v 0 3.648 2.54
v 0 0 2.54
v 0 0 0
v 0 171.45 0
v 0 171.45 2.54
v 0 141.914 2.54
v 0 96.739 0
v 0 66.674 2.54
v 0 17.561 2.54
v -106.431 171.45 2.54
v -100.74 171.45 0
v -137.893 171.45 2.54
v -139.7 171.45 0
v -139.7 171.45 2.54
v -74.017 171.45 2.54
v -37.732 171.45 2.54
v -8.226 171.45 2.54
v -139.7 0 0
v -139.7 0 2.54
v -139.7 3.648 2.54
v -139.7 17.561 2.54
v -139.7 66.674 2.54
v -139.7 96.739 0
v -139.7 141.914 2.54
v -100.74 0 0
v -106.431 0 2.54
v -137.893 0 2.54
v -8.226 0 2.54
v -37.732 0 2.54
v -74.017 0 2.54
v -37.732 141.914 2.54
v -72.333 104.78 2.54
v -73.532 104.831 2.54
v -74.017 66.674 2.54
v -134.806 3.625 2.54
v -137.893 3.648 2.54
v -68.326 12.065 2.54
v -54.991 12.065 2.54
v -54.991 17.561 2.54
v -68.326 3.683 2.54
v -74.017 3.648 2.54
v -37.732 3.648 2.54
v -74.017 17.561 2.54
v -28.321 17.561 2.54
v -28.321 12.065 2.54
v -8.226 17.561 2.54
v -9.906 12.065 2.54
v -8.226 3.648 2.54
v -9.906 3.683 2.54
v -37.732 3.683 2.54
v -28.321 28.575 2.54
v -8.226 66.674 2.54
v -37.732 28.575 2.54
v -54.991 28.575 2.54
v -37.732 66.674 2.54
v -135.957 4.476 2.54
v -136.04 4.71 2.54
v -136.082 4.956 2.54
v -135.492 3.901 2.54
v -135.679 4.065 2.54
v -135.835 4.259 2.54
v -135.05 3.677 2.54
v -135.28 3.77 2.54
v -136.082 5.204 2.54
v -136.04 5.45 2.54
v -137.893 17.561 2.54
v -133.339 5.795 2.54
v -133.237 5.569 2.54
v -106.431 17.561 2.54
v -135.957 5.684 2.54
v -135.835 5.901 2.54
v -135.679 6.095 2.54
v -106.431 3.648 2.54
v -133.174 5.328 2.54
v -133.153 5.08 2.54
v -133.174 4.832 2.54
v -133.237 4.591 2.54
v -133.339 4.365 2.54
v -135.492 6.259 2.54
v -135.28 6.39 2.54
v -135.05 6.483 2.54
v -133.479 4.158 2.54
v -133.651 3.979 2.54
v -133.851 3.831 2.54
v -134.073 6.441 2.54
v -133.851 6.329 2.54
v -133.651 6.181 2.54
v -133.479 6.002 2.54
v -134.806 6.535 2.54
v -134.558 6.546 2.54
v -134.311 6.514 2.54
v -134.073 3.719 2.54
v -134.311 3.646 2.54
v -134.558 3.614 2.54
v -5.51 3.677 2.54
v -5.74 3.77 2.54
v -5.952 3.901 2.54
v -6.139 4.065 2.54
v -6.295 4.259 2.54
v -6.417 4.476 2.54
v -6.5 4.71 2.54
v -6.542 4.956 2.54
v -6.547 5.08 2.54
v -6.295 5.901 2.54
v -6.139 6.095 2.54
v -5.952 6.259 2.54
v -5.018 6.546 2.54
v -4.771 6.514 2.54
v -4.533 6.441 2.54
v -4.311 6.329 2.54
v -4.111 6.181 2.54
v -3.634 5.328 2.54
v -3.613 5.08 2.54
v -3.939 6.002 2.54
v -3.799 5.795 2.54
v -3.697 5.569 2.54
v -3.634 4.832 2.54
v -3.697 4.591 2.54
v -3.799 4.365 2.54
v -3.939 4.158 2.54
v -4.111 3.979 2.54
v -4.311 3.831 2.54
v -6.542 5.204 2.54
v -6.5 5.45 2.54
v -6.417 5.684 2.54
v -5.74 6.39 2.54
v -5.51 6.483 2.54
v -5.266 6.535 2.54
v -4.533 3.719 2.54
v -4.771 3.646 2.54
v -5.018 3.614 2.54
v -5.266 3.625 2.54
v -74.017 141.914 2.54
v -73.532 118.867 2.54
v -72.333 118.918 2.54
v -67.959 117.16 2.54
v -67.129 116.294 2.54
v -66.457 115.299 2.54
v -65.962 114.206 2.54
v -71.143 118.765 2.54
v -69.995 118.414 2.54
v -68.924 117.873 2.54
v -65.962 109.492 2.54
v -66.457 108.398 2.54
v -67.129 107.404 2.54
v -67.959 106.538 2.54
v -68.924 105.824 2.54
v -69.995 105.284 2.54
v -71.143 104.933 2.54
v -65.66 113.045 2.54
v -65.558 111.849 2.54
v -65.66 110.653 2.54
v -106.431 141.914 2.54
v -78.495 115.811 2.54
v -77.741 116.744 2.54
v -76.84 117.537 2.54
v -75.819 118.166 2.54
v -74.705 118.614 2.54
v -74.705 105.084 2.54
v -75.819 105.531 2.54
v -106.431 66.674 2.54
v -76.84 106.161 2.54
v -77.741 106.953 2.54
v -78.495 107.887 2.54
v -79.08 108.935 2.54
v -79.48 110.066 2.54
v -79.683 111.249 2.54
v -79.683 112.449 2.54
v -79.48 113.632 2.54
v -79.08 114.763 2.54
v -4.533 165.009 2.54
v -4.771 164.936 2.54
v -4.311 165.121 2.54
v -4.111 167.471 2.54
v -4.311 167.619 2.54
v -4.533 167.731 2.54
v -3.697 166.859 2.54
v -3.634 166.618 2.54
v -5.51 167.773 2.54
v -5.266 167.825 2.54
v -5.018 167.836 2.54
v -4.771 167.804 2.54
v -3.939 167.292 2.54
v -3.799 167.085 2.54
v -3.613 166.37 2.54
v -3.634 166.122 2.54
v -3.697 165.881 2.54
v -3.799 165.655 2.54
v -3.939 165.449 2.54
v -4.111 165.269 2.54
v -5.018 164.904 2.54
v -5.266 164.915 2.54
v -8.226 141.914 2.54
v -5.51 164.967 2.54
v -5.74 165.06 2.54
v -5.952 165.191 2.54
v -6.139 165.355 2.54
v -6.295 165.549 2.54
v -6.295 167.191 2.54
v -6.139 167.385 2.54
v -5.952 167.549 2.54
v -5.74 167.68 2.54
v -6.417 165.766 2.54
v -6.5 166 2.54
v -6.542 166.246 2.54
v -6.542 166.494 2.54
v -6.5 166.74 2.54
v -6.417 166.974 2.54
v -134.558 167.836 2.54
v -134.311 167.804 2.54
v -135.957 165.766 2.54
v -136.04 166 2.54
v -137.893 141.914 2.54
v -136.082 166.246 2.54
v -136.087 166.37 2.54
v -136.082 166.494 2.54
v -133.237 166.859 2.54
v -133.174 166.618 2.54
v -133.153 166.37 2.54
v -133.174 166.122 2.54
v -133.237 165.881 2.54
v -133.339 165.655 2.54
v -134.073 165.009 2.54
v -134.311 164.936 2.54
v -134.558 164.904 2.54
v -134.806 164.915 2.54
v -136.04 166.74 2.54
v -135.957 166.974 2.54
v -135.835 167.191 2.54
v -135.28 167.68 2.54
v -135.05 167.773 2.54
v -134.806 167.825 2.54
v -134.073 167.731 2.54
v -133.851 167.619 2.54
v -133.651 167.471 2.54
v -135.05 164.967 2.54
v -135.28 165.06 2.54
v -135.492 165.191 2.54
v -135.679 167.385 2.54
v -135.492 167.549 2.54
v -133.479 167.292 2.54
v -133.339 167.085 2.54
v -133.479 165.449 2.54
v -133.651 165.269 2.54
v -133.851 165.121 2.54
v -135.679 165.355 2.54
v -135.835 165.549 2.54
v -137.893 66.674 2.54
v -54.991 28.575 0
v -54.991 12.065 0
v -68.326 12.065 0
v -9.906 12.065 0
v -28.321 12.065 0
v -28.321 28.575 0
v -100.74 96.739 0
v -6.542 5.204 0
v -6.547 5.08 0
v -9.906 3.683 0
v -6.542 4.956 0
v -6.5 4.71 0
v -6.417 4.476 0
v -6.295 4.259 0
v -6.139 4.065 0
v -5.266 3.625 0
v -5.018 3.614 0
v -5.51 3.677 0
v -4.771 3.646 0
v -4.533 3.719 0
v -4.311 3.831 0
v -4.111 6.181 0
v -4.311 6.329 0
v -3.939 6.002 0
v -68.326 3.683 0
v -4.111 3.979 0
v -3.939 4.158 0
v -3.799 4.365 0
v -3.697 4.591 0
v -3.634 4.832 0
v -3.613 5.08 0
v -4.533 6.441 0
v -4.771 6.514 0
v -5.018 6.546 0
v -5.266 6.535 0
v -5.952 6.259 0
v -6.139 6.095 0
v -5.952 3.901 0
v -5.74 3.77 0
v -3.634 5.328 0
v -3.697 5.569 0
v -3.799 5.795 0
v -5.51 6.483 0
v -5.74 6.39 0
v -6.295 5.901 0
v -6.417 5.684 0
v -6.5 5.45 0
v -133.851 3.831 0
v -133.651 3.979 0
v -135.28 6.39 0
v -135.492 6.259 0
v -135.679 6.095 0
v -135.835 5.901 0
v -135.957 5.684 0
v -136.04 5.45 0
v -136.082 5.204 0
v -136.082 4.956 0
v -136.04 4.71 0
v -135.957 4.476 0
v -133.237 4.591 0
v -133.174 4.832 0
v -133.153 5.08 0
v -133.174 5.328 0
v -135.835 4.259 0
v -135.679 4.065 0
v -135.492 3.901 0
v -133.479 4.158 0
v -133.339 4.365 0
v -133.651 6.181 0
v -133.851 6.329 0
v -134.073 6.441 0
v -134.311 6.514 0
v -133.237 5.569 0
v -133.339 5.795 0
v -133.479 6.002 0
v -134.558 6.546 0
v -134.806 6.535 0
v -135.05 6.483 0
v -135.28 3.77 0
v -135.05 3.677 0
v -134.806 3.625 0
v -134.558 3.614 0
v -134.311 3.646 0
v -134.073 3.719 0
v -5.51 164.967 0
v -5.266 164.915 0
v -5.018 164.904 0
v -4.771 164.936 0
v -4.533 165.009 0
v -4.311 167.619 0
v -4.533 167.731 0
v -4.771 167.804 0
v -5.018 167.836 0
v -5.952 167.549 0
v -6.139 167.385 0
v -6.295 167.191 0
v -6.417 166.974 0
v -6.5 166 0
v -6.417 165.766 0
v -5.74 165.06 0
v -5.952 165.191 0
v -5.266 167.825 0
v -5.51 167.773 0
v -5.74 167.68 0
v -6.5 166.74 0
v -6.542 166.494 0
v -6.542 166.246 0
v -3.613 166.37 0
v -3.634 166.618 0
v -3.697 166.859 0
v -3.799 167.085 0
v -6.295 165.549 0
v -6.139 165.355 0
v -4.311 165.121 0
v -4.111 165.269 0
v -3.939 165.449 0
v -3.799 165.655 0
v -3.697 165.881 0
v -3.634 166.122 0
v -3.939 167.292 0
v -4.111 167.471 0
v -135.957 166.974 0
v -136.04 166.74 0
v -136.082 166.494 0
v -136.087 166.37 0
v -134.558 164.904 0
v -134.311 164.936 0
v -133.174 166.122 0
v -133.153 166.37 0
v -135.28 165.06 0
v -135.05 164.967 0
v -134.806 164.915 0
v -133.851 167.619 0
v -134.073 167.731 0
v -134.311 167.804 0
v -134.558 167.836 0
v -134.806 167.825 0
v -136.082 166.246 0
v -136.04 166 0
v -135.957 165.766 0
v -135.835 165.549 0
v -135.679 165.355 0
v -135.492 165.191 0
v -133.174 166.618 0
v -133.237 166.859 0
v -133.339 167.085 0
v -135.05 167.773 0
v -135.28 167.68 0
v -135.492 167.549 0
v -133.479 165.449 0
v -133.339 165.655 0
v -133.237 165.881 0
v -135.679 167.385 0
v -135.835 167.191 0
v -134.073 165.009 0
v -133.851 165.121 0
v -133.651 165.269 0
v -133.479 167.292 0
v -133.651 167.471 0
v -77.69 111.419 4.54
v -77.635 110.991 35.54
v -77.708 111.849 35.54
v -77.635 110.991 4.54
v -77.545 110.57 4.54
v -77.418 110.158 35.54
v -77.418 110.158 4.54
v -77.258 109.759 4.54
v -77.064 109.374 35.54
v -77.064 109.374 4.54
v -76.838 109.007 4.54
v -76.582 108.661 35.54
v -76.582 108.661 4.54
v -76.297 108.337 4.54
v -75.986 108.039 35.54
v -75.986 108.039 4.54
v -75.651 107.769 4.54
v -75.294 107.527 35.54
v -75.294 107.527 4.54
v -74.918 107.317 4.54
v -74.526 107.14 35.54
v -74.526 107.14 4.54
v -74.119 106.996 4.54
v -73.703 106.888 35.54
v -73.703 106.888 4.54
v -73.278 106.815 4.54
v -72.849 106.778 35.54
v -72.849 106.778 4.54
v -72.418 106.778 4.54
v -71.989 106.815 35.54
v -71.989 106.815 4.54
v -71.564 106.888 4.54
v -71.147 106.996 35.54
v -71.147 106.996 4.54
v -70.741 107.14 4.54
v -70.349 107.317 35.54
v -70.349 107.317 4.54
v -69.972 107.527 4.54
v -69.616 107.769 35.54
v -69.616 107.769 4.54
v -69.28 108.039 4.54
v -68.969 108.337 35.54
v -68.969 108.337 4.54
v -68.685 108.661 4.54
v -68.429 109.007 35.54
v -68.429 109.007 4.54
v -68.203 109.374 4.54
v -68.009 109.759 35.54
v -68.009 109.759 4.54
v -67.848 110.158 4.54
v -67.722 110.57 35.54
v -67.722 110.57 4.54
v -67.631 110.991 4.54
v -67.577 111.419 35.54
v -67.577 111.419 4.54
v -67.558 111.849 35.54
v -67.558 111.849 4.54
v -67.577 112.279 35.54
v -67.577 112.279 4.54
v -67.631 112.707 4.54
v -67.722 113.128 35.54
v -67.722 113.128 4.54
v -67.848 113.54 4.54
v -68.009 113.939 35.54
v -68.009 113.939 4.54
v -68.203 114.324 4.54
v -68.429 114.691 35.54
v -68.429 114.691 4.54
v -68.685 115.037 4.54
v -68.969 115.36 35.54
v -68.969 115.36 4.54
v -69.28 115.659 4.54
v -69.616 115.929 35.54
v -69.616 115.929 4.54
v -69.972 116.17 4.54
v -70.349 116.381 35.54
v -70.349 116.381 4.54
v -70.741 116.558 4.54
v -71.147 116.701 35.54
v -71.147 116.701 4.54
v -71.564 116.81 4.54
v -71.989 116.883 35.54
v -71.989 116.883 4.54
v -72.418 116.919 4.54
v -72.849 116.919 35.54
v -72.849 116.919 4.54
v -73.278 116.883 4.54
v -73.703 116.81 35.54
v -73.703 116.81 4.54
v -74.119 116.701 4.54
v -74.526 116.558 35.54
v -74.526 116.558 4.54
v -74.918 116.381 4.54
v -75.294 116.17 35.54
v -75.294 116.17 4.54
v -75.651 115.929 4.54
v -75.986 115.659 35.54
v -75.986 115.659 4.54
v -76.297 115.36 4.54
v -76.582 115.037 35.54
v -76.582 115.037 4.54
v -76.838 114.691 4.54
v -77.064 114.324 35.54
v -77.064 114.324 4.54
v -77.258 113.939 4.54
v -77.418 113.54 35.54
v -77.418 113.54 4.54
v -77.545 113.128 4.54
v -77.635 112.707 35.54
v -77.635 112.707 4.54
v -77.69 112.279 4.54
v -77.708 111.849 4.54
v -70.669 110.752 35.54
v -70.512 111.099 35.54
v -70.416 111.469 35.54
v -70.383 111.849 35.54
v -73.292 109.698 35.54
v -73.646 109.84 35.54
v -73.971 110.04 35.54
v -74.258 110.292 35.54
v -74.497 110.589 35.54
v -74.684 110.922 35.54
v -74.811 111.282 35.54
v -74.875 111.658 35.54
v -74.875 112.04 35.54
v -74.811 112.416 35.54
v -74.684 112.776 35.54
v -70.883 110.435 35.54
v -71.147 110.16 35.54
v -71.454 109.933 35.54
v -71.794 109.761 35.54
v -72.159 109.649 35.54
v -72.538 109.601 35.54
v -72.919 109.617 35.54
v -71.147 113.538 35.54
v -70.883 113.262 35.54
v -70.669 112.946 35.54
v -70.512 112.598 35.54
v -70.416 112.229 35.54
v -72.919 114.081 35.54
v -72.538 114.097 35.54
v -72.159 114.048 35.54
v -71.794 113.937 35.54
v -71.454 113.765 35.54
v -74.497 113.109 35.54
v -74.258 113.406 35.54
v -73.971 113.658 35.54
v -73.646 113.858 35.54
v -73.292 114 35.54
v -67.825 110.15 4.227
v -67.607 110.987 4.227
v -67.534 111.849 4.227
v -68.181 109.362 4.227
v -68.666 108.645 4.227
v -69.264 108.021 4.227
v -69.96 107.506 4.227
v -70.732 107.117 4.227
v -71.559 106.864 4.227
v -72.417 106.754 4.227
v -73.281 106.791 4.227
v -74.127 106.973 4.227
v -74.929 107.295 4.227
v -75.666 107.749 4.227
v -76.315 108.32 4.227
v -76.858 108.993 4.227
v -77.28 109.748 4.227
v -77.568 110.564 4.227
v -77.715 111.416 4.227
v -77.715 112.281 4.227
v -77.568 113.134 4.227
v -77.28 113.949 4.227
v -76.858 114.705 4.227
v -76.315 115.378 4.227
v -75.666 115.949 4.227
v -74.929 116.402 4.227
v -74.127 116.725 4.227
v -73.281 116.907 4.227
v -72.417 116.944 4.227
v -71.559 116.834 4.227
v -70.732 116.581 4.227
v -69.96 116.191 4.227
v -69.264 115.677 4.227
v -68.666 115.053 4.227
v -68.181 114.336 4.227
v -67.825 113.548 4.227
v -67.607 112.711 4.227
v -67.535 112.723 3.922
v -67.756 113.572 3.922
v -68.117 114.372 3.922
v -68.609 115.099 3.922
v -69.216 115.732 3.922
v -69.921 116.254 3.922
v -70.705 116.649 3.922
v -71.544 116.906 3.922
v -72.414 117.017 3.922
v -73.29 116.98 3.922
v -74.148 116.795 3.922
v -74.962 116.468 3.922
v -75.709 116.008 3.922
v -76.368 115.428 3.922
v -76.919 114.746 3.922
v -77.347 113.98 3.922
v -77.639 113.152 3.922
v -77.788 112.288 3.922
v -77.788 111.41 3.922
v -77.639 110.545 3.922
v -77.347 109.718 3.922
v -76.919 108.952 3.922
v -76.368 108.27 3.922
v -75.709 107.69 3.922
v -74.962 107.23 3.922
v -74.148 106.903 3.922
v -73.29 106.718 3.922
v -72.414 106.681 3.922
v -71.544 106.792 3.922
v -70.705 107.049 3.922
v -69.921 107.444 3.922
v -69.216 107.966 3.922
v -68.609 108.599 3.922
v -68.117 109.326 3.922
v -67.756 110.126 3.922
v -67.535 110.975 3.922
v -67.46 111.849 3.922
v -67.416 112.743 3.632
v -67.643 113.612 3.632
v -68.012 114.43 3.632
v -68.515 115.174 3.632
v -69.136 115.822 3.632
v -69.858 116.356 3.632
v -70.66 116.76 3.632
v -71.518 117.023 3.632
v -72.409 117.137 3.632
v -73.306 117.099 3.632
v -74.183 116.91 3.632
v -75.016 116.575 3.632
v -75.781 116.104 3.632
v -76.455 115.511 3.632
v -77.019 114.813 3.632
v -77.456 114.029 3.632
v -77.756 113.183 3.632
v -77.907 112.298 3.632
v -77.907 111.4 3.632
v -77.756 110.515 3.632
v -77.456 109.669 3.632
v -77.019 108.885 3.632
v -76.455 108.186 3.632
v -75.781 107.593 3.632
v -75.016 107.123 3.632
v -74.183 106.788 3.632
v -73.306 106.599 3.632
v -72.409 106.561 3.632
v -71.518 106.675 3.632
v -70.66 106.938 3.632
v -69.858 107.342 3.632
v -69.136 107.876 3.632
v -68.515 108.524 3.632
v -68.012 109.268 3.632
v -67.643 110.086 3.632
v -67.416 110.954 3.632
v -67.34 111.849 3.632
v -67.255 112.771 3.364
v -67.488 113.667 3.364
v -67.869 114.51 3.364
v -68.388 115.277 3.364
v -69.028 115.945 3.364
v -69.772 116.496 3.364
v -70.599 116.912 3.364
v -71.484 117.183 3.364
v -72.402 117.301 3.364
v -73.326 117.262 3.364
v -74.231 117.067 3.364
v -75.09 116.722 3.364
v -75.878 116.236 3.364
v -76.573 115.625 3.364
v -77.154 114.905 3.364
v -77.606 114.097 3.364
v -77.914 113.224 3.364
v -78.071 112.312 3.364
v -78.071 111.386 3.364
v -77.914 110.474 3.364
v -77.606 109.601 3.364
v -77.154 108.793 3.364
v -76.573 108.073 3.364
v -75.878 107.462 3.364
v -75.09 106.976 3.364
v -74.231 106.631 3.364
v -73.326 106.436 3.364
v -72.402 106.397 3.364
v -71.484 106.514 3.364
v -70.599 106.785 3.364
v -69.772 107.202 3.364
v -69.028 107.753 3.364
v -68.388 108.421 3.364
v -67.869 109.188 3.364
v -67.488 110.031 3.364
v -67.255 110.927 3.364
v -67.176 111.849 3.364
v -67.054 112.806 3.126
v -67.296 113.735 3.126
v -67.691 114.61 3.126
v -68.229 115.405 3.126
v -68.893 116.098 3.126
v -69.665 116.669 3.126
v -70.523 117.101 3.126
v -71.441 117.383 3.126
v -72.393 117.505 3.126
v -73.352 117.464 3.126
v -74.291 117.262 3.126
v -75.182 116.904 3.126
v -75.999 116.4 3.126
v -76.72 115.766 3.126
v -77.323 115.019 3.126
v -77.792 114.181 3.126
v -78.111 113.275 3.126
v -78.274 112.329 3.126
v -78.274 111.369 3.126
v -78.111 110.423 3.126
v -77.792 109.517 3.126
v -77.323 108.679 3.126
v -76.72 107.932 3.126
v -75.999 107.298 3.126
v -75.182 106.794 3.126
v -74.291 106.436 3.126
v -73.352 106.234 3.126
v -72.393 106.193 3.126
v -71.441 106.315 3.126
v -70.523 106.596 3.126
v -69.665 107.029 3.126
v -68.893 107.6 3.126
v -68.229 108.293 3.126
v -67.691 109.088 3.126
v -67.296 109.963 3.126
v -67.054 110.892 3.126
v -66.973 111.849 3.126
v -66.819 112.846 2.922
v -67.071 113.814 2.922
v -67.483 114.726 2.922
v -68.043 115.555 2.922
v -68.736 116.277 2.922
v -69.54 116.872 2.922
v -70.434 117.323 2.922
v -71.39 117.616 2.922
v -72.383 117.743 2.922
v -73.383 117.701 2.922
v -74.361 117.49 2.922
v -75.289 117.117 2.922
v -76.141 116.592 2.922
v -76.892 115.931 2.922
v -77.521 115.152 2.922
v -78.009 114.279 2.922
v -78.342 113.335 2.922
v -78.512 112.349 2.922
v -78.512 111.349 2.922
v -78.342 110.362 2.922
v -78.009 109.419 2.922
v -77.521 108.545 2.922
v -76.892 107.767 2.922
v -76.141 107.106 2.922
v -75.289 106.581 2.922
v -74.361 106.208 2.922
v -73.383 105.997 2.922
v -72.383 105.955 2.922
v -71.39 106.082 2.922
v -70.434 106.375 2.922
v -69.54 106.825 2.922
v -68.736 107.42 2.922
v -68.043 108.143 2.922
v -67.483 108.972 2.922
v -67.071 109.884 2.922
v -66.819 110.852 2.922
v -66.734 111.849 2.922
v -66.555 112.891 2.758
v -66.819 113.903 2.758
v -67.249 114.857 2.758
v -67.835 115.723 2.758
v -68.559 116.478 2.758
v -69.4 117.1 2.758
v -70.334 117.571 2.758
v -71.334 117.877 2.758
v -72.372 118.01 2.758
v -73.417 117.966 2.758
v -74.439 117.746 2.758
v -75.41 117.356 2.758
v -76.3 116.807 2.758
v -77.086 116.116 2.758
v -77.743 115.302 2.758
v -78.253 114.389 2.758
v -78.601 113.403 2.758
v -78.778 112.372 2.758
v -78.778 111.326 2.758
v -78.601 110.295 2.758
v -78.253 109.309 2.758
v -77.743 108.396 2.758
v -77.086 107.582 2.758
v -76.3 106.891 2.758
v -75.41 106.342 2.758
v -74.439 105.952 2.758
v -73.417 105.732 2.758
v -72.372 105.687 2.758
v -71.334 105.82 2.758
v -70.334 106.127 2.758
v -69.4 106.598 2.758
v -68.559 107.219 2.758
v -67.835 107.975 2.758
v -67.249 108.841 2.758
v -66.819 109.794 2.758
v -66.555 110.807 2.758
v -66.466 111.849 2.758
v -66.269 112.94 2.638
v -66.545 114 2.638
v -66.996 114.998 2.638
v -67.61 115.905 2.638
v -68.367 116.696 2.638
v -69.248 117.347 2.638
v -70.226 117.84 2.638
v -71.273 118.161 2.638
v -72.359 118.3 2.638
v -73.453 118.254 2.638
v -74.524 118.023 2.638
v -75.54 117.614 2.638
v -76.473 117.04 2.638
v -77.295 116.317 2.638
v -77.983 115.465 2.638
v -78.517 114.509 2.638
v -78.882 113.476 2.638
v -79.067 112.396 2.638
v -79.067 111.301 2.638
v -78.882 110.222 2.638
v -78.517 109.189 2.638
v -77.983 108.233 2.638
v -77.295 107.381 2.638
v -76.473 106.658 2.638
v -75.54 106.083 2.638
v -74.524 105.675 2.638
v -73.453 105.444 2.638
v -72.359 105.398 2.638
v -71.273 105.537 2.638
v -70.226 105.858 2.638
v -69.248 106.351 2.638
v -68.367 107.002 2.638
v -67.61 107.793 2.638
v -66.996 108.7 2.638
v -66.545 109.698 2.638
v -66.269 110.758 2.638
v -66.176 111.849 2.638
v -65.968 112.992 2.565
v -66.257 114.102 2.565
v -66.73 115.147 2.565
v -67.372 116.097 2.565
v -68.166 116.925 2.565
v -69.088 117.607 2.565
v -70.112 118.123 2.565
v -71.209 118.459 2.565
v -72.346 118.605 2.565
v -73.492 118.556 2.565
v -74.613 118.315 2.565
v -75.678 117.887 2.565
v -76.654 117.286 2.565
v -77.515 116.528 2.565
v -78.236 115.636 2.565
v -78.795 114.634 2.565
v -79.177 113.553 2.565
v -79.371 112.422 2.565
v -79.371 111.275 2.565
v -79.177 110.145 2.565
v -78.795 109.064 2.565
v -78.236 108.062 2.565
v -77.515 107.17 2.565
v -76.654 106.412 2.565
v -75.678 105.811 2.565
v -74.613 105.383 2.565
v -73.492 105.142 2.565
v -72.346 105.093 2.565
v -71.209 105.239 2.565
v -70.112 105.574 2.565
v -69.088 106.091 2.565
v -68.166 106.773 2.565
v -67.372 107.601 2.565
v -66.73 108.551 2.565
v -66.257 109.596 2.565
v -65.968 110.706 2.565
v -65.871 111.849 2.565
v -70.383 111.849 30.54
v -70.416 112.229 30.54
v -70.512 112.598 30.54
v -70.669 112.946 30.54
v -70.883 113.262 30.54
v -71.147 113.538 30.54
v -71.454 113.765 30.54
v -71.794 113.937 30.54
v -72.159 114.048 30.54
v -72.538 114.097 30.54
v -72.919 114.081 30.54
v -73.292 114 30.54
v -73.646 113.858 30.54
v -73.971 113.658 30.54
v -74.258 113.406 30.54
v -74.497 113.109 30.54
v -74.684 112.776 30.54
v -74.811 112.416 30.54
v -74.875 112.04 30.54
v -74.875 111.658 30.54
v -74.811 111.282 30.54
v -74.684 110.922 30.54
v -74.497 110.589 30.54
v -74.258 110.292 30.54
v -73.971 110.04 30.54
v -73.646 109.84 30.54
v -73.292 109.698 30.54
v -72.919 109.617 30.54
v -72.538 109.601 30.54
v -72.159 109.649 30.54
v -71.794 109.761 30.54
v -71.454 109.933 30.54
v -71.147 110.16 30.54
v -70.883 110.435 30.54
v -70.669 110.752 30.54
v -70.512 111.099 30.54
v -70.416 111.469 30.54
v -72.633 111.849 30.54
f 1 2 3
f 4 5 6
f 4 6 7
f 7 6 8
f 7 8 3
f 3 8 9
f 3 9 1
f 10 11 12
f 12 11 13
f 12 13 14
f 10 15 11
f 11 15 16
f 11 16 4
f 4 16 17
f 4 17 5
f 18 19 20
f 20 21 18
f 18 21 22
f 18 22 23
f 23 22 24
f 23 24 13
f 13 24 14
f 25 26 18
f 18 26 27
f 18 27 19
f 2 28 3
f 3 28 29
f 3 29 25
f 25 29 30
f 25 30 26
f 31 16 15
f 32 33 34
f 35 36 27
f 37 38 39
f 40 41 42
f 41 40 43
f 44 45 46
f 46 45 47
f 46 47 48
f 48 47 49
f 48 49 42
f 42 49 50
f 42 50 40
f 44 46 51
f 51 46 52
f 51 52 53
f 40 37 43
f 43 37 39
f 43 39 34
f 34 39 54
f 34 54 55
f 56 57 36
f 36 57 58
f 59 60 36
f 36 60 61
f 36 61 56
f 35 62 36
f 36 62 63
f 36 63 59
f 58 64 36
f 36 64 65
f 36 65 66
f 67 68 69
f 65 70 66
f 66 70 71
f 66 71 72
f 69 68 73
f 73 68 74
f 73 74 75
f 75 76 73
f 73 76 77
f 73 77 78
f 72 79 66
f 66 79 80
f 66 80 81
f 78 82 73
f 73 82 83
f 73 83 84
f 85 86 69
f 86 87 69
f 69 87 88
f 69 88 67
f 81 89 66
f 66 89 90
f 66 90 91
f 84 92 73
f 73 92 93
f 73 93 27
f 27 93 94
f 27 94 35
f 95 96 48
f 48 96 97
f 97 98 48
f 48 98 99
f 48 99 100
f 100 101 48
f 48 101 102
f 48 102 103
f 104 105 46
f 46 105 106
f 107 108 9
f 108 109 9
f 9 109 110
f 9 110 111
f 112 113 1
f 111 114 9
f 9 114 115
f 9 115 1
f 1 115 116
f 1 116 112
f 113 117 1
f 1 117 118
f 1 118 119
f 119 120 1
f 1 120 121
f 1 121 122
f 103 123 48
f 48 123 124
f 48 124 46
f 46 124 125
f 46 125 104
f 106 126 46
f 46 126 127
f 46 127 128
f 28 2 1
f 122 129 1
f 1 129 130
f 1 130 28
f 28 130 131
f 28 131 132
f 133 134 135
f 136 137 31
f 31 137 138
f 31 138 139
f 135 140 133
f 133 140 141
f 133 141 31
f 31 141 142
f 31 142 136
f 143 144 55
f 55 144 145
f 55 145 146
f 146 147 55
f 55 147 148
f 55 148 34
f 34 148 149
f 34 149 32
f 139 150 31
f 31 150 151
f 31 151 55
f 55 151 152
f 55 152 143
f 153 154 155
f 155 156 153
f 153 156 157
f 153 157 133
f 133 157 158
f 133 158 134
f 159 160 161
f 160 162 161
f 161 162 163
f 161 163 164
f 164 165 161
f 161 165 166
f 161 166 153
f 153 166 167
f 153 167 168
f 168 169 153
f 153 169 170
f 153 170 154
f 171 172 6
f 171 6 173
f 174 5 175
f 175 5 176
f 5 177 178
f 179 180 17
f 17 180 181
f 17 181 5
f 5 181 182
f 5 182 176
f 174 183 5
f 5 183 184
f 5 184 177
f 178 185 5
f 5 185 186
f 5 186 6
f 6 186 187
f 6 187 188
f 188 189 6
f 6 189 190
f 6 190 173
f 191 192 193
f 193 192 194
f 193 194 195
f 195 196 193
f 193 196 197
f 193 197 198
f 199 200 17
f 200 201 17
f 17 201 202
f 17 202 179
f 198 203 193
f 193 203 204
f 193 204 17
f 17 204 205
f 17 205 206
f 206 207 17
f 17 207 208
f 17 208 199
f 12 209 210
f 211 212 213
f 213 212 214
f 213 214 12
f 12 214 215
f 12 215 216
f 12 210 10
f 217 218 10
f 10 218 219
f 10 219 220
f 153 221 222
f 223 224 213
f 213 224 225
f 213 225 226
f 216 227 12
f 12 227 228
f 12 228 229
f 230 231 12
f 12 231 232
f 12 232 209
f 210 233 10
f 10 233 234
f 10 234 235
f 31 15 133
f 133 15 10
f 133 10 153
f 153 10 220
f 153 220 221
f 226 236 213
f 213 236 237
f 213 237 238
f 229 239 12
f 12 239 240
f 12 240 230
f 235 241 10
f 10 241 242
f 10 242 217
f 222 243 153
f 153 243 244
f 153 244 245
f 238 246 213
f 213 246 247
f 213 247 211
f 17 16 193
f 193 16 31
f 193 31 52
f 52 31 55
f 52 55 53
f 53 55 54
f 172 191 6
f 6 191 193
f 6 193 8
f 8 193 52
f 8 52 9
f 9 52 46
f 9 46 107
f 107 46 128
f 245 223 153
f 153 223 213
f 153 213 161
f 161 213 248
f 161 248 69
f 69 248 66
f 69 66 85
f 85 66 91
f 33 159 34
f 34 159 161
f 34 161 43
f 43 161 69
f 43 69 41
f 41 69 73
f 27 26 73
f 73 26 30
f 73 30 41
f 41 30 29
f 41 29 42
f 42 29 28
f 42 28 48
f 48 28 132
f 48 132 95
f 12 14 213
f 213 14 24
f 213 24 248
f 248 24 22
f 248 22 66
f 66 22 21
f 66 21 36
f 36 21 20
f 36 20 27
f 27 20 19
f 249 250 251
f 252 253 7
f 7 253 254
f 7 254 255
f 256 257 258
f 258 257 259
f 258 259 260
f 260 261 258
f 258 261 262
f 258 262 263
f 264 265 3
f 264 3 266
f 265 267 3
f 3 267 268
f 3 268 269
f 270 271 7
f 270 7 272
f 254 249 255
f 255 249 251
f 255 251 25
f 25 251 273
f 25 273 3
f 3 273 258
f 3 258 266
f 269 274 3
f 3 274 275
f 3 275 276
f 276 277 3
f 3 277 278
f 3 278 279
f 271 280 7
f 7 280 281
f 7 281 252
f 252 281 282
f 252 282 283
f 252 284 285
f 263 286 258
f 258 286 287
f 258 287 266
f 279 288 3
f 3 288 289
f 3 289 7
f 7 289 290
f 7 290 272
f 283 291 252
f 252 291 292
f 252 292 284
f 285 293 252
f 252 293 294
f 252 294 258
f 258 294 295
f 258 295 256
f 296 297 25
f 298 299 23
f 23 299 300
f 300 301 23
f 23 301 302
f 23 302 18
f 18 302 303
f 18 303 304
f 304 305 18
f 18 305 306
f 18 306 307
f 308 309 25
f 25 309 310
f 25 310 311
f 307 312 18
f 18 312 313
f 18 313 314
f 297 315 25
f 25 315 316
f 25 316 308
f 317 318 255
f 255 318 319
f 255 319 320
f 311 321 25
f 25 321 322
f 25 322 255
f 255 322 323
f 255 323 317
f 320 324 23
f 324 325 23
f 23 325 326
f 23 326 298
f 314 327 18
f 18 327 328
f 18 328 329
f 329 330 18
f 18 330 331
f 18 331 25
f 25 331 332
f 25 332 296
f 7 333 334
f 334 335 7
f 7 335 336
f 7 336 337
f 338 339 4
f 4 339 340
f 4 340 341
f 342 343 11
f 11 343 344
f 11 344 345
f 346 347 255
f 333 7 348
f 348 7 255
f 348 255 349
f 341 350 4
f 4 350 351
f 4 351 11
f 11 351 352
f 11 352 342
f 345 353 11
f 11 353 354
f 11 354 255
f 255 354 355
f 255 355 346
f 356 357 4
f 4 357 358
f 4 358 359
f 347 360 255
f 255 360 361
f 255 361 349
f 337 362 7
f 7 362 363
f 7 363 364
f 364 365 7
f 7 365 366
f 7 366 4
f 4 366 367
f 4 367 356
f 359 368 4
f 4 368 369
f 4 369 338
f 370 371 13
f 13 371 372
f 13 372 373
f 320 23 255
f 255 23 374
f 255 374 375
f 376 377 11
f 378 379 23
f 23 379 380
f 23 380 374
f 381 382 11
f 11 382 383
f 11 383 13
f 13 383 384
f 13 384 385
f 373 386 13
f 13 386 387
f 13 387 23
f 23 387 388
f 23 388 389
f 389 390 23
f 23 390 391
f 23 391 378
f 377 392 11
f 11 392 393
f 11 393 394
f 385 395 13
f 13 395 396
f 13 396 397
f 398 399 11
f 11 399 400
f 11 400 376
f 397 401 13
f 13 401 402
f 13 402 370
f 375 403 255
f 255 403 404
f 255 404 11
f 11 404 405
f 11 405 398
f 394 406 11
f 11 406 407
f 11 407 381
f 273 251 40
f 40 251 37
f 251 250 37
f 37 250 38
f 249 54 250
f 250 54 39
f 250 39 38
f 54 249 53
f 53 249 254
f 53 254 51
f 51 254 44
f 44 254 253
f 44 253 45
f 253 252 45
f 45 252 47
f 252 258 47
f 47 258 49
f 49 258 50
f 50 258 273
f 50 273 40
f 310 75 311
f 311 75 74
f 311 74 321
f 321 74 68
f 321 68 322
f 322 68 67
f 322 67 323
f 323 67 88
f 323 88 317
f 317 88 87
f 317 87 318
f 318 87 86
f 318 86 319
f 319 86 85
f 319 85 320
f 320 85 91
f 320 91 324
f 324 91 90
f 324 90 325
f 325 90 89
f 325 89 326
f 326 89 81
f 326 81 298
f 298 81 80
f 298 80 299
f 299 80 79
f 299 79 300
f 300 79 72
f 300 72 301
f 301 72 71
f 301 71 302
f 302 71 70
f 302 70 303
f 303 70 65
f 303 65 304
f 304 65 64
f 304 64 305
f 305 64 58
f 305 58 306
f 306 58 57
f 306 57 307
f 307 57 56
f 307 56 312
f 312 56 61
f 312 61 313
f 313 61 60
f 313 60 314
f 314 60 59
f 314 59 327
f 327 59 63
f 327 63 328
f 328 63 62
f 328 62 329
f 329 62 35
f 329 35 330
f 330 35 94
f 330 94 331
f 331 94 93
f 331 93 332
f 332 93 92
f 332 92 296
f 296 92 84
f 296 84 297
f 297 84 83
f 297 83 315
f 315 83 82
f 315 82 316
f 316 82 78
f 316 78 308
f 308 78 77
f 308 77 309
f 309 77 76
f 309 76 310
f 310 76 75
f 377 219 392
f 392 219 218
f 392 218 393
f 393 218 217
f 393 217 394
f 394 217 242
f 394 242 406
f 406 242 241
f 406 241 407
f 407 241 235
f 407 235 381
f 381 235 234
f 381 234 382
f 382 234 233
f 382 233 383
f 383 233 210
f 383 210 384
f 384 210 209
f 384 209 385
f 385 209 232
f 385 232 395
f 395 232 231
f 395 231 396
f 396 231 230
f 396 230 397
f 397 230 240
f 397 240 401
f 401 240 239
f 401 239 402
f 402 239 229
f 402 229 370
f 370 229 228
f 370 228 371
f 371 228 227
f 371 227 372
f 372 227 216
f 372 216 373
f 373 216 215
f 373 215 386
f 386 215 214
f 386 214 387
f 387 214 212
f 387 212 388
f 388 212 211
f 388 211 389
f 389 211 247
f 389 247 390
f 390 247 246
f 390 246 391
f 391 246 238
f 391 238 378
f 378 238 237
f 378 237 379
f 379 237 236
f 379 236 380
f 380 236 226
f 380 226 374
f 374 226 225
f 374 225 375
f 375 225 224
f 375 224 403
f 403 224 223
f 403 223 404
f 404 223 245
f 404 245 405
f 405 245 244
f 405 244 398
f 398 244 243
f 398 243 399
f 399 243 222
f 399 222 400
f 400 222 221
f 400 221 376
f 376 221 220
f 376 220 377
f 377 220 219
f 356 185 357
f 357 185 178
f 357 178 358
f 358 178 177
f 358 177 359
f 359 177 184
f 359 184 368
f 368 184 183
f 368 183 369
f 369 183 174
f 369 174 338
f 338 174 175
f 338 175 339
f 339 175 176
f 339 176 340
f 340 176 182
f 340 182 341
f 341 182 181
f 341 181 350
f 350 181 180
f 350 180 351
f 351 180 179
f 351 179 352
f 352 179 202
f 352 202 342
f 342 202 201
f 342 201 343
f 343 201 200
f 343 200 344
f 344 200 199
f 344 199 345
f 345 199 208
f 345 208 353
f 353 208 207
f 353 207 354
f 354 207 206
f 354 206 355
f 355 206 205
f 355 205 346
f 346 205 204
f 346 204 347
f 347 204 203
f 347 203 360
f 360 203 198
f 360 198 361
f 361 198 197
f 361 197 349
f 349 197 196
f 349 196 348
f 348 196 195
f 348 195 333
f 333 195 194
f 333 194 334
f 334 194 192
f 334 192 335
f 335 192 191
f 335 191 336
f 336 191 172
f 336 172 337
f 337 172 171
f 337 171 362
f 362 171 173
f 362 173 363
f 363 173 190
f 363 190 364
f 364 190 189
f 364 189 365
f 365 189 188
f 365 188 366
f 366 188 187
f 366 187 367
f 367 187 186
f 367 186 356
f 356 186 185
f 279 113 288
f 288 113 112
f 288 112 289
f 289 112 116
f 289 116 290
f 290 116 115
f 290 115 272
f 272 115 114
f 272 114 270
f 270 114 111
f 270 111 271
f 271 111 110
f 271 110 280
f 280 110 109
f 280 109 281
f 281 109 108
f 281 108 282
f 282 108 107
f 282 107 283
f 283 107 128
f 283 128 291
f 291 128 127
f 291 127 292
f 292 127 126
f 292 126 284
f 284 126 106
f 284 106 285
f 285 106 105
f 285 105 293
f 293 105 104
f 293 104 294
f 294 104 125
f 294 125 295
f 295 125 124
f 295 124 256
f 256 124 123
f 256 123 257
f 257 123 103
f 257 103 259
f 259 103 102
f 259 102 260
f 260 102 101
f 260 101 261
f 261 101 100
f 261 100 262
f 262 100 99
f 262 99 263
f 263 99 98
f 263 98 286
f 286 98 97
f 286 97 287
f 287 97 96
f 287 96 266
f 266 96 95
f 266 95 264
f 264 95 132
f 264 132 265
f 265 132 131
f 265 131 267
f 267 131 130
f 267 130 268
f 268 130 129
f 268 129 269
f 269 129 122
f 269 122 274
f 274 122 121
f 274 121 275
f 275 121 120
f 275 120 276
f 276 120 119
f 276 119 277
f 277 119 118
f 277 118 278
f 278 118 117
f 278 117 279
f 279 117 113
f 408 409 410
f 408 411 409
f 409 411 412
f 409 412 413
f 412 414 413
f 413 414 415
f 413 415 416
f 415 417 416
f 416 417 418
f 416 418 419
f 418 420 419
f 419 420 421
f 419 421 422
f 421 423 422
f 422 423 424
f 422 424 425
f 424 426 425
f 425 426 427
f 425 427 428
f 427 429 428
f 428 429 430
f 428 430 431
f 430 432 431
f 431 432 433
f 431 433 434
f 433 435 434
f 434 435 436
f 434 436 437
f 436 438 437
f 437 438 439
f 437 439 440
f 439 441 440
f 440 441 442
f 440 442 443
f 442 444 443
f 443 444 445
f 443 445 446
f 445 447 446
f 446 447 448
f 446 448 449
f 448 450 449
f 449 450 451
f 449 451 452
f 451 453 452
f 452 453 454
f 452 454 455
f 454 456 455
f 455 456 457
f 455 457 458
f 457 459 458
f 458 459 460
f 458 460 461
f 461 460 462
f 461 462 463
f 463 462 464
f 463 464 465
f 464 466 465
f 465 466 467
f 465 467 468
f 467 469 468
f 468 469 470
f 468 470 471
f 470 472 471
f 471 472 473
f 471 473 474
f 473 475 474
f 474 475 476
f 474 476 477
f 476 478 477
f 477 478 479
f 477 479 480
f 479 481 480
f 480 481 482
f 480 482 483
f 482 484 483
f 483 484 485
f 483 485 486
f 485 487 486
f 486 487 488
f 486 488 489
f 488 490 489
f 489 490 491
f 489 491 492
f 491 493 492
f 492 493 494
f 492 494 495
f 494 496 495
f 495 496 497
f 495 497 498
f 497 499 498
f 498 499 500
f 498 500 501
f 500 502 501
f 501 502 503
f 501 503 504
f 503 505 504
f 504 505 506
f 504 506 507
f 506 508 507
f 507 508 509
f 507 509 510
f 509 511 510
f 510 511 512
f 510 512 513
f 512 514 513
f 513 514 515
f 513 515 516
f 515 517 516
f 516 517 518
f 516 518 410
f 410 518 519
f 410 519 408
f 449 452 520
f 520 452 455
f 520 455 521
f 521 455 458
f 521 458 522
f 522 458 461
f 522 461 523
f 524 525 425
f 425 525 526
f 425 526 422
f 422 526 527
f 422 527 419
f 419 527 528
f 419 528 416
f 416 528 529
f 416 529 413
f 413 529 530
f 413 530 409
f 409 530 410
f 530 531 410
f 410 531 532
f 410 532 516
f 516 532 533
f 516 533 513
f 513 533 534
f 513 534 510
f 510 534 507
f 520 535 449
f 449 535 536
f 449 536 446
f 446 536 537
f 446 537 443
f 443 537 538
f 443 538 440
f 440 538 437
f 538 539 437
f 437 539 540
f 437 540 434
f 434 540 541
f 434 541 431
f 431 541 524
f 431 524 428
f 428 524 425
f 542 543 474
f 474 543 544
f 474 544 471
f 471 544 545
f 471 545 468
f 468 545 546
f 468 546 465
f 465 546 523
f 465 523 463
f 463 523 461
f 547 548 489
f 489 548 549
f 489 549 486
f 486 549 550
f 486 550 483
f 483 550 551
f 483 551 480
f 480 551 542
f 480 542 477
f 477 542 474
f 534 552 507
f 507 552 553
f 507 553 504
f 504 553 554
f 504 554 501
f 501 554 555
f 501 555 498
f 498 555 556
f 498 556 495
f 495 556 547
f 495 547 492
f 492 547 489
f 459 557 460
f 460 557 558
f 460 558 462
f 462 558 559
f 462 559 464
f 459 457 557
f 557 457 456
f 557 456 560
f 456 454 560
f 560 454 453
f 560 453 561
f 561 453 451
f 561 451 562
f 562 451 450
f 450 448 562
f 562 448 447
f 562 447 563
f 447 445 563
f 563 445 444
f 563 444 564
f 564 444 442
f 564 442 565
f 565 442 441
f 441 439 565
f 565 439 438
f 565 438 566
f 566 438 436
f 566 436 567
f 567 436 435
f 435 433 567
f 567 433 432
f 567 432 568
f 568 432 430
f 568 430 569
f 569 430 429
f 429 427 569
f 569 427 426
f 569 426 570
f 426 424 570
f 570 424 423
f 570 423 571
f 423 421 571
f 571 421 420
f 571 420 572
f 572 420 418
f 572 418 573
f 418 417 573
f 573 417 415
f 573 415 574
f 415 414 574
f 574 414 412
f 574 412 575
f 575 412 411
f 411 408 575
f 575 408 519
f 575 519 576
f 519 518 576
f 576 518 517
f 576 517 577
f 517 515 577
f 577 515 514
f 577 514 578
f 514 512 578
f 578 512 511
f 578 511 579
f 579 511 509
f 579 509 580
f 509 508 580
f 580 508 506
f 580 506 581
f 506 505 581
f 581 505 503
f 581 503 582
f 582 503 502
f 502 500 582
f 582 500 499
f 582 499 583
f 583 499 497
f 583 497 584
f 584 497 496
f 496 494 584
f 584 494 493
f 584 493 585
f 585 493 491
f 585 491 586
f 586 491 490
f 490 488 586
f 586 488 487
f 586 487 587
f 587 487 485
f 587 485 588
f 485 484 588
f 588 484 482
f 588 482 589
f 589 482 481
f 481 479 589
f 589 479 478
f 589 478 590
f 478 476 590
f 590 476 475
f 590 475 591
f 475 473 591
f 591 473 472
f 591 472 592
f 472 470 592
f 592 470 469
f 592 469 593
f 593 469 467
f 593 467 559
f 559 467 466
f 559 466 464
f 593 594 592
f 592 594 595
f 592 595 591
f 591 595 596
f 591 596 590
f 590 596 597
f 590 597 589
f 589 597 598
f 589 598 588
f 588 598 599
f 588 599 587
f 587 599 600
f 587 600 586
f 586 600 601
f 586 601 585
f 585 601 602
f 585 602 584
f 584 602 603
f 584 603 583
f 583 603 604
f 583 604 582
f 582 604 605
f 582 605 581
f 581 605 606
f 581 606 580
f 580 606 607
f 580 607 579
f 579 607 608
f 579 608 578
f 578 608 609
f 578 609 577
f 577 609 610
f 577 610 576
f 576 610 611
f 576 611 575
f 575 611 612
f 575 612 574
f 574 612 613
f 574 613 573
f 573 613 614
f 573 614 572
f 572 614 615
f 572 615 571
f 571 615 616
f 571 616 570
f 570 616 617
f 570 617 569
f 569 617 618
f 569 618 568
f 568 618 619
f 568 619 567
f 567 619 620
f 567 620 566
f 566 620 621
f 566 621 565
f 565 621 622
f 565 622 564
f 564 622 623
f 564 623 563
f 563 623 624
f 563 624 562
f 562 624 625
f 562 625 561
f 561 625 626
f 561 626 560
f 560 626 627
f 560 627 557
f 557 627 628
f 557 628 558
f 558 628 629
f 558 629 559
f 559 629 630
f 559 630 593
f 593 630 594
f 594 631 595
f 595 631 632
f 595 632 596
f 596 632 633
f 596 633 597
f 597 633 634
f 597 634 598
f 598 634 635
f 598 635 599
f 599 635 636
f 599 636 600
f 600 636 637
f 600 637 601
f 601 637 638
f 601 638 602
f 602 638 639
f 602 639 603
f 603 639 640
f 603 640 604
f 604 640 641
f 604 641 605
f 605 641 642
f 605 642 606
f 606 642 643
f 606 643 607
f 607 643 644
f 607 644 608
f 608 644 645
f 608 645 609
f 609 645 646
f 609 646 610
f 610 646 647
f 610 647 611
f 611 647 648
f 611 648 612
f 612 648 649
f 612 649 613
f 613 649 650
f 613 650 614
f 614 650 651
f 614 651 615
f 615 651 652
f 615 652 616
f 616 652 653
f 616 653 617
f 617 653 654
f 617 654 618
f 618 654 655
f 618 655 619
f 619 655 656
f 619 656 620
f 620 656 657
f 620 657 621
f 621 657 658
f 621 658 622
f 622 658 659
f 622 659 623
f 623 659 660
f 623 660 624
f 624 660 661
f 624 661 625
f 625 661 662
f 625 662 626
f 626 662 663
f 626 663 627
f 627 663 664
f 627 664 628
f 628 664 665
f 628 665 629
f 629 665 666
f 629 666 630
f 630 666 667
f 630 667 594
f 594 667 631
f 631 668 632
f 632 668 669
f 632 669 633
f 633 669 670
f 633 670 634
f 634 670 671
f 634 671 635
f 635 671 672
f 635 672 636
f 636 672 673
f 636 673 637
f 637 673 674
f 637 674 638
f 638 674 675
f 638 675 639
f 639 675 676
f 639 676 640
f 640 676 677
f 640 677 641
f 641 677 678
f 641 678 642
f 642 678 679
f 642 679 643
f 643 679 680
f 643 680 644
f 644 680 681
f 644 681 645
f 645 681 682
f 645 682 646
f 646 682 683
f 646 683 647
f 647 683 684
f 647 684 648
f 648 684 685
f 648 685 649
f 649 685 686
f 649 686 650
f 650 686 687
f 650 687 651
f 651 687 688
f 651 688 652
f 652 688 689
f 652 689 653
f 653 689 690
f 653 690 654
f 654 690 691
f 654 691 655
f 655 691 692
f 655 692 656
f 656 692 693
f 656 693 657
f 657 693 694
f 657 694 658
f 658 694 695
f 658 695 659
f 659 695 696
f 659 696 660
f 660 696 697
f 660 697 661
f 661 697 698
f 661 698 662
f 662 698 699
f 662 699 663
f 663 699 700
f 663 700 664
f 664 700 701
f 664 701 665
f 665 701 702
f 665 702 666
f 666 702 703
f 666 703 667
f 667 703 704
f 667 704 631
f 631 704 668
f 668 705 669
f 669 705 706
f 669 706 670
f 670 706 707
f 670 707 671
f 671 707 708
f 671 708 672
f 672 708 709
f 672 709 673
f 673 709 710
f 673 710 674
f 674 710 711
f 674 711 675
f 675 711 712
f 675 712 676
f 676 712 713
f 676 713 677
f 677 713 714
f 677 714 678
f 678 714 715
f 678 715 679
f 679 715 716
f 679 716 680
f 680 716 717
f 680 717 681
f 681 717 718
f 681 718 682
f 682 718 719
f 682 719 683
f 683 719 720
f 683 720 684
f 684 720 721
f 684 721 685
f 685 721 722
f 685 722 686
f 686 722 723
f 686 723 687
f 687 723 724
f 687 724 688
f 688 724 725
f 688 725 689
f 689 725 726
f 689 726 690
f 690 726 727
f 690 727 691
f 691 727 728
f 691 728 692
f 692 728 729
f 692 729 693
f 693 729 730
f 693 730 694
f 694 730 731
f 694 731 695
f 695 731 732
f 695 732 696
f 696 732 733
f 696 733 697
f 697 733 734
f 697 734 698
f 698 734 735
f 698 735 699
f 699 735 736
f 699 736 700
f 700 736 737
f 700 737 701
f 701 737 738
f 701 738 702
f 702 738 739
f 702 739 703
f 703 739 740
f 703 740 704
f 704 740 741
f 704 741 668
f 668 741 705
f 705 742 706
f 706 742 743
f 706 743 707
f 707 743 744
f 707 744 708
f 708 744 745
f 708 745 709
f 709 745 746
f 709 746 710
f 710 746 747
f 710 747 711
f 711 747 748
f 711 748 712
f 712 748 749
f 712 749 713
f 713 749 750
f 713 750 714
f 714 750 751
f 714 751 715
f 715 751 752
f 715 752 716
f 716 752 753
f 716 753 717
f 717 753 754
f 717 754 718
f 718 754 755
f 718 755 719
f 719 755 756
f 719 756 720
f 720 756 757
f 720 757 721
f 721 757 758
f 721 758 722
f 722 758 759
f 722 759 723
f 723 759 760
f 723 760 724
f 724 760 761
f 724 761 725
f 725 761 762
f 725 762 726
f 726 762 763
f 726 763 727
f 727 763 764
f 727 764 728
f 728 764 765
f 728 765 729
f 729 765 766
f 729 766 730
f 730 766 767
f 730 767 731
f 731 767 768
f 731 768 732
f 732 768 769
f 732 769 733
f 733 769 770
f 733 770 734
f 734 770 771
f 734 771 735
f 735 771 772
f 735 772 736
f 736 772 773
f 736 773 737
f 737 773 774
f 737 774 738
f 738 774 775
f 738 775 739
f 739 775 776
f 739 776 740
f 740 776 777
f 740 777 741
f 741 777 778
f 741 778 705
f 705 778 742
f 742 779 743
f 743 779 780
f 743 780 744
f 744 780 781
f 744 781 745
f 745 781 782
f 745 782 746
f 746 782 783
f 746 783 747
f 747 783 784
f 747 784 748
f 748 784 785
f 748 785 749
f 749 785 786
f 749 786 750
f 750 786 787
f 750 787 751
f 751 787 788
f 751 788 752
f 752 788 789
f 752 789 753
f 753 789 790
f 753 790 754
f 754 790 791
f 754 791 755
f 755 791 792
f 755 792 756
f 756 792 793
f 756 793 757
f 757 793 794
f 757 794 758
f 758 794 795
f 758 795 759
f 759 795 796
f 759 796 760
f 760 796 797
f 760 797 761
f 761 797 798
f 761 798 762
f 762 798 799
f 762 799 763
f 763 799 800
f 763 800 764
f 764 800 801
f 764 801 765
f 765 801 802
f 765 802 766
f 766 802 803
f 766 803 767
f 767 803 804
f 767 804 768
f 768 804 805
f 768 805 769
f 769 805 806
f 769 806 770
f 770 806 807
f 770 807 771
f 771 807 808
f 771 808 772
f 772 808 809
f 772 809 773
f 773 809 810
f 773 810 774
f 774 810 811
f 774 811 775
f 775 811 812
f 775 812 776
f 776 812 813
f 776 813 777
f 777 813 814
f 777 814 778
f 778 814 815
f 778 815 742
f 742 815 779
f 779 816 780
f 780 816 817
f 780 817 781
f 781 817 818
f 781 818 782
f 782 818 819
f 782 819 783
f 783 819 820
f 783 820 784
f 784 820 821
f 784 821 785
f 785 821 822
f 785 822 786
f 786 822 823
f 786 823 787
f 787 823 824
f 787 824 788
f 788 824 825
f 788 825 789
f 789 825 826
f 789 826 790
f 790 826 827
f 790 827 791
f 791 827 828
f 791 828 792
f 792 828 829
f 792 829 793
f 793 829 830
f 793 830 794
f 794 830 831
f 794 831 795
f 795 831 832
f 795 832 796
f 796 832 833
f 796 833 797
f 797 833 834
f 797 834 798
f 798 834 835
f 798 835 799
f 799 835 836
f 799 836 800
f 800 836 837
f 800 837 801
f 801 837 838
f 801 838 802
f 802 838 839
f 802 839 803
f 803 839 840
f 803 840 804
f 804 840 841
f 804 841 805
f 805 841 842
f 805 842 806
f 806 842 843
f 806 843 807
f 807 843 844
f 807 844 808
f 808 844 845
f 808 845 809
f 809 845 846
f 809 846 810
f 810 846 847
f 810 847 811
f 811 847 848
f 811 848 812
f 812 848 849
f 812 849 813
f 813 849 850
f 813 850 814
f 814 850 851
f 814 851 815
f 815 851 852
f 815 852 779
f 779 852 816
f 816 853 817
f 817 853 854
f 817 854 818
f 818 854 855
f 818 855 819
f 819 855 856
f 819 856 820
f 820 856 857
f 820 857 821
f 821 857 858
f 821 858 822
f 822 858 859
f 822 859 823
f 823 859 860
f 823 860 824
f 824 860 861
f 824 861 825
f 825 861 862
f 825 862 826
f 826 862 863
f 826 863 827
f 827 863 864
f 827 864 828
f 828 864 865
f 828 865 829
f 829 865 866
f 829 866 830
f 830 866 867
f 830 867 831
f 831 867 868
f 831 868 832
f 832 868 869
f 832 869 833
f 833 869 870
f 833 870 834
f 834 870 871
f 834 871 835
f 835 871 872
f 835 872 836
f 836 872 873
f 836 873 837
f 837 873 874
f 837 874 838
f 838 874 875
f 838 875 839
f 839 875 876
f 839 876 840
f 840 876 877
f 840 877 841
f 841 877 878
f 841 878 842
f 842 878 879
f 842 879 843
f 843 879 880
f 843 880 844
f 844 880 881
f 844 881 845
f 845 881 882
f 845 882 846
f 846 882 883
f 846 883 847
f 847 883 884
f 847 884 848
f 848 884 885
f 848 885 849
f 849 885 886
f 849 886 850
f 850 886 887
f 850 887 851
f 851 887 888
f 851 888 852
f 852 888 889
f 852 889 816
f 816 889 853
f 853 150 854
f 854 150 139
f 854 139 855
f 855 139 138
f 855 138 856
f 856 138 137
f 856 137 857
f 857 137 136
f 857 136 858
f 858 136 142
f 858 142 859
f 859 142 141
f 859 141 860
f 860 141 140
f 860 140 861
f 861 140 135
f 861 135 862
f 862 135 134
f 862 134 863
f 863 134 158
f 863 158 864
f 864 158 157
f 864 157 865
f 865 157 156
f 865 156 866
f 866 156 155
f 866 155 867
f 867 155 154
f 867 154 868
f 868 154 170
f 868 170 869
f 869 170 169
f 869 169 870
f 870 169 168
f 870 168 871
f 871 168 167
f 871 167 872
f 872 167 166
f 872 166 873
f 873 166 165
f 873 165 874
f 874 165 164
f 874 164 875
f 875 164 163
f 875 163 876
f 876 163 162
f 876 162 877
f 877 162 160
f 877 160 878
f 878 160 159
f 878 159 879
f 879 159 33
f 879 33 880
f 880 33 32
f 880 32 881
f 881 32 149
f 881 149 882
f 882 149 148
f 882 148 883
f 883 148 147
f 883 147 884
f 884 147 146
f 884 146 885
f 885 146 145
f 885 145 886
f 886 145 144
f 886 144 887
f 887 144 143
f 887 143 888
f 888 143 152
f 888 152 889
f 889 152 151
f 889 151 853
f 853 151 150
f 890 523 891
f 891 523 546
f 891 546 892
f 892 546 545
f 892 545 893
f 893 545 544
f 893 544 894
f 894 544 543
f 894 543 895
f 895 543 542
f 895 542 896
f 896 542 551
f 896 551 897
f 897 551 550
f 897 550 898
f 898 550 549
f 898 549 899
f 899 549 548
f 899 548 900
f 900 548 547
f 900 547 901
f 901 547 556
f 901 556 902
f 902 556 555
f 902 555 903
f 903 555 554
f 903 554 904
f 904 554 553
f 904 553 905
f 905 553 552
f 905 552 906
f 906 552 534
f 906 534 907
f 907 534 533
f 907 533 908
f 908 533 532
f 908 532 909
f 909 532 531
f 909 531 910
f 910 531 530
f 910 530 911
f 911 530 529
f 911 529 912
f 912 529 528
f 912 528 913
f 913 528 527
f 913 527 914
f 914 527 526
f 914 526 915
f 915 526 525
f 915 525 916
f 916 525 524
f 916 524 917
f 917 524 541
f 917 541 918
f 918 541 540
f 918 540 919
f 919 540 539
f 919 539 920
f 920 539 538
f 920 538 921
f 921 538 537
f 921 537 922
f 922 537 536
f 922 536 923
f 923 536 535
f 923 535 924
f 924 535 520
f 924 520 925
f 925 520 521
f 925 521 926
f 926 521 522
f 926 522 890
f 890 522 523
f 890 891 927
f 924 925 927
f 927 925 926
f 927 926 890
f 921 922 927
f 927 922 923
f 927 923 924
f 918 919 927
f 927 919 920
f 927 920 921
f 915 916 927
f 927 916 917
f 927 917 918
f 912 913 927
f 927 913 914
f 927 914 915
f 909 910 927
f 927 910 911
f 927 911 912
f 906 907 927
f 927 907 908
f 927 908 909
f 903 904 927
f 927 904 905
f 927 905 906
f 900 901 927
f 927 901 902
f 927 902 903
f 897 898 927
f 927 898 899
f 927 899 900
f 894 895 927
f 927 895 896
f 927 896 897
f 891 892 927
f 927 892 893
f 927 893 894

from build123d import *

# Parameters (mm, degrees)
SKETCH1_W           = 139.7
SKETCH1_H           = 171.45
BOSS_EXTRUDE1_DEPTH = 2.54
CUT_EXTRUDE1_DEPTH  = 2.54
SKETCH12_R          = 1.46685
CUT_EXTRUDE6_DEPTH  = 3.54
SKETCH24_R          = 5.075
BOSS_EXTRUDE8_DEPTH = 33
FILLET2_R           = 2
SKETCH26_R          = 2.25
CUT_EXTRUDE16_DEPTH = 5


with BuildPart() as part:
    # Sketch1 → Boss-Extrude1 (new body)
    with BuildSketch(Plane.XY):
        with Locations((-69.85, 85.725)):
            Rectangle(SKETCH1_W, SKETCH1_H)
    extrude(amount=BOSS_EXTRUDE1_DEPTH)

    # Sketch3 → Cut-Extrude1 (cut)
    with BuildSketch(Plane.XY.offset(2.54)):
        Polygon((-28.321, 12.065), (-9.906, 12.065), (-9.906, 3.683), (-68.326, 3.683), (-68.326, 12.065), (-54.991, 12.065), (-54.991, 28.575), (-49.911, 28.575), (-28.321, 28.575), align=None)
    extrude(amount=-CUT_EXTRUDE1_DEPTH, mode=Mode.SUBTRACT)

    # Sketch12 → Cut-Extrude6 (cut, through all)
    with BuildSketch(Plane.XY.offset(2.54)):
        with Locations((-134.62, 5.08)):
            Circle(SKETCH12_R)
        with Locations((-134.62, 166.37)):
            Circle(SKETCH12_R)
        with Locations((-5.08, 166.37)):
            Circle(SKETCH12_R)
        with Locations((-5.08, 5.08)):
            Circle(SKETCH12_R)
    extrude(amount=-CUT_EXTRUDE6_DEPTH, mode=Mode.SUBTRACT)

    # Sketch24 → Boss-Extrude8 (add)
    with BuildSketch(Plane.XY.offset(2.54)):
        with Locations((-72.633345717, 111.8489)):
            Circle(SKETCH24_R)
    extrude(amount=BOSS_EXTRUDE8_DEPTH)

    # Fillet2
    fillet2_edges = [part.edges().sort_by_distance(p)[0] for p in [
        (-77.708345717, 111.8489, 2.54),
    ]]
    fillet(fillet2_edges, radius=FILLET2_R)

    # Sketch26 → Cut-Extrude16 (cut)
    with BuildSketch(Plane.XY.offset(35.54)):
        with Locations((-72.633345717, 111.8489)):
            Circle(SKETCH26_R)
    extrude(amount=-CUT_EXTRUDE16_DEPTH, mode=Mode.SUBTRACT)


solid = part.part
